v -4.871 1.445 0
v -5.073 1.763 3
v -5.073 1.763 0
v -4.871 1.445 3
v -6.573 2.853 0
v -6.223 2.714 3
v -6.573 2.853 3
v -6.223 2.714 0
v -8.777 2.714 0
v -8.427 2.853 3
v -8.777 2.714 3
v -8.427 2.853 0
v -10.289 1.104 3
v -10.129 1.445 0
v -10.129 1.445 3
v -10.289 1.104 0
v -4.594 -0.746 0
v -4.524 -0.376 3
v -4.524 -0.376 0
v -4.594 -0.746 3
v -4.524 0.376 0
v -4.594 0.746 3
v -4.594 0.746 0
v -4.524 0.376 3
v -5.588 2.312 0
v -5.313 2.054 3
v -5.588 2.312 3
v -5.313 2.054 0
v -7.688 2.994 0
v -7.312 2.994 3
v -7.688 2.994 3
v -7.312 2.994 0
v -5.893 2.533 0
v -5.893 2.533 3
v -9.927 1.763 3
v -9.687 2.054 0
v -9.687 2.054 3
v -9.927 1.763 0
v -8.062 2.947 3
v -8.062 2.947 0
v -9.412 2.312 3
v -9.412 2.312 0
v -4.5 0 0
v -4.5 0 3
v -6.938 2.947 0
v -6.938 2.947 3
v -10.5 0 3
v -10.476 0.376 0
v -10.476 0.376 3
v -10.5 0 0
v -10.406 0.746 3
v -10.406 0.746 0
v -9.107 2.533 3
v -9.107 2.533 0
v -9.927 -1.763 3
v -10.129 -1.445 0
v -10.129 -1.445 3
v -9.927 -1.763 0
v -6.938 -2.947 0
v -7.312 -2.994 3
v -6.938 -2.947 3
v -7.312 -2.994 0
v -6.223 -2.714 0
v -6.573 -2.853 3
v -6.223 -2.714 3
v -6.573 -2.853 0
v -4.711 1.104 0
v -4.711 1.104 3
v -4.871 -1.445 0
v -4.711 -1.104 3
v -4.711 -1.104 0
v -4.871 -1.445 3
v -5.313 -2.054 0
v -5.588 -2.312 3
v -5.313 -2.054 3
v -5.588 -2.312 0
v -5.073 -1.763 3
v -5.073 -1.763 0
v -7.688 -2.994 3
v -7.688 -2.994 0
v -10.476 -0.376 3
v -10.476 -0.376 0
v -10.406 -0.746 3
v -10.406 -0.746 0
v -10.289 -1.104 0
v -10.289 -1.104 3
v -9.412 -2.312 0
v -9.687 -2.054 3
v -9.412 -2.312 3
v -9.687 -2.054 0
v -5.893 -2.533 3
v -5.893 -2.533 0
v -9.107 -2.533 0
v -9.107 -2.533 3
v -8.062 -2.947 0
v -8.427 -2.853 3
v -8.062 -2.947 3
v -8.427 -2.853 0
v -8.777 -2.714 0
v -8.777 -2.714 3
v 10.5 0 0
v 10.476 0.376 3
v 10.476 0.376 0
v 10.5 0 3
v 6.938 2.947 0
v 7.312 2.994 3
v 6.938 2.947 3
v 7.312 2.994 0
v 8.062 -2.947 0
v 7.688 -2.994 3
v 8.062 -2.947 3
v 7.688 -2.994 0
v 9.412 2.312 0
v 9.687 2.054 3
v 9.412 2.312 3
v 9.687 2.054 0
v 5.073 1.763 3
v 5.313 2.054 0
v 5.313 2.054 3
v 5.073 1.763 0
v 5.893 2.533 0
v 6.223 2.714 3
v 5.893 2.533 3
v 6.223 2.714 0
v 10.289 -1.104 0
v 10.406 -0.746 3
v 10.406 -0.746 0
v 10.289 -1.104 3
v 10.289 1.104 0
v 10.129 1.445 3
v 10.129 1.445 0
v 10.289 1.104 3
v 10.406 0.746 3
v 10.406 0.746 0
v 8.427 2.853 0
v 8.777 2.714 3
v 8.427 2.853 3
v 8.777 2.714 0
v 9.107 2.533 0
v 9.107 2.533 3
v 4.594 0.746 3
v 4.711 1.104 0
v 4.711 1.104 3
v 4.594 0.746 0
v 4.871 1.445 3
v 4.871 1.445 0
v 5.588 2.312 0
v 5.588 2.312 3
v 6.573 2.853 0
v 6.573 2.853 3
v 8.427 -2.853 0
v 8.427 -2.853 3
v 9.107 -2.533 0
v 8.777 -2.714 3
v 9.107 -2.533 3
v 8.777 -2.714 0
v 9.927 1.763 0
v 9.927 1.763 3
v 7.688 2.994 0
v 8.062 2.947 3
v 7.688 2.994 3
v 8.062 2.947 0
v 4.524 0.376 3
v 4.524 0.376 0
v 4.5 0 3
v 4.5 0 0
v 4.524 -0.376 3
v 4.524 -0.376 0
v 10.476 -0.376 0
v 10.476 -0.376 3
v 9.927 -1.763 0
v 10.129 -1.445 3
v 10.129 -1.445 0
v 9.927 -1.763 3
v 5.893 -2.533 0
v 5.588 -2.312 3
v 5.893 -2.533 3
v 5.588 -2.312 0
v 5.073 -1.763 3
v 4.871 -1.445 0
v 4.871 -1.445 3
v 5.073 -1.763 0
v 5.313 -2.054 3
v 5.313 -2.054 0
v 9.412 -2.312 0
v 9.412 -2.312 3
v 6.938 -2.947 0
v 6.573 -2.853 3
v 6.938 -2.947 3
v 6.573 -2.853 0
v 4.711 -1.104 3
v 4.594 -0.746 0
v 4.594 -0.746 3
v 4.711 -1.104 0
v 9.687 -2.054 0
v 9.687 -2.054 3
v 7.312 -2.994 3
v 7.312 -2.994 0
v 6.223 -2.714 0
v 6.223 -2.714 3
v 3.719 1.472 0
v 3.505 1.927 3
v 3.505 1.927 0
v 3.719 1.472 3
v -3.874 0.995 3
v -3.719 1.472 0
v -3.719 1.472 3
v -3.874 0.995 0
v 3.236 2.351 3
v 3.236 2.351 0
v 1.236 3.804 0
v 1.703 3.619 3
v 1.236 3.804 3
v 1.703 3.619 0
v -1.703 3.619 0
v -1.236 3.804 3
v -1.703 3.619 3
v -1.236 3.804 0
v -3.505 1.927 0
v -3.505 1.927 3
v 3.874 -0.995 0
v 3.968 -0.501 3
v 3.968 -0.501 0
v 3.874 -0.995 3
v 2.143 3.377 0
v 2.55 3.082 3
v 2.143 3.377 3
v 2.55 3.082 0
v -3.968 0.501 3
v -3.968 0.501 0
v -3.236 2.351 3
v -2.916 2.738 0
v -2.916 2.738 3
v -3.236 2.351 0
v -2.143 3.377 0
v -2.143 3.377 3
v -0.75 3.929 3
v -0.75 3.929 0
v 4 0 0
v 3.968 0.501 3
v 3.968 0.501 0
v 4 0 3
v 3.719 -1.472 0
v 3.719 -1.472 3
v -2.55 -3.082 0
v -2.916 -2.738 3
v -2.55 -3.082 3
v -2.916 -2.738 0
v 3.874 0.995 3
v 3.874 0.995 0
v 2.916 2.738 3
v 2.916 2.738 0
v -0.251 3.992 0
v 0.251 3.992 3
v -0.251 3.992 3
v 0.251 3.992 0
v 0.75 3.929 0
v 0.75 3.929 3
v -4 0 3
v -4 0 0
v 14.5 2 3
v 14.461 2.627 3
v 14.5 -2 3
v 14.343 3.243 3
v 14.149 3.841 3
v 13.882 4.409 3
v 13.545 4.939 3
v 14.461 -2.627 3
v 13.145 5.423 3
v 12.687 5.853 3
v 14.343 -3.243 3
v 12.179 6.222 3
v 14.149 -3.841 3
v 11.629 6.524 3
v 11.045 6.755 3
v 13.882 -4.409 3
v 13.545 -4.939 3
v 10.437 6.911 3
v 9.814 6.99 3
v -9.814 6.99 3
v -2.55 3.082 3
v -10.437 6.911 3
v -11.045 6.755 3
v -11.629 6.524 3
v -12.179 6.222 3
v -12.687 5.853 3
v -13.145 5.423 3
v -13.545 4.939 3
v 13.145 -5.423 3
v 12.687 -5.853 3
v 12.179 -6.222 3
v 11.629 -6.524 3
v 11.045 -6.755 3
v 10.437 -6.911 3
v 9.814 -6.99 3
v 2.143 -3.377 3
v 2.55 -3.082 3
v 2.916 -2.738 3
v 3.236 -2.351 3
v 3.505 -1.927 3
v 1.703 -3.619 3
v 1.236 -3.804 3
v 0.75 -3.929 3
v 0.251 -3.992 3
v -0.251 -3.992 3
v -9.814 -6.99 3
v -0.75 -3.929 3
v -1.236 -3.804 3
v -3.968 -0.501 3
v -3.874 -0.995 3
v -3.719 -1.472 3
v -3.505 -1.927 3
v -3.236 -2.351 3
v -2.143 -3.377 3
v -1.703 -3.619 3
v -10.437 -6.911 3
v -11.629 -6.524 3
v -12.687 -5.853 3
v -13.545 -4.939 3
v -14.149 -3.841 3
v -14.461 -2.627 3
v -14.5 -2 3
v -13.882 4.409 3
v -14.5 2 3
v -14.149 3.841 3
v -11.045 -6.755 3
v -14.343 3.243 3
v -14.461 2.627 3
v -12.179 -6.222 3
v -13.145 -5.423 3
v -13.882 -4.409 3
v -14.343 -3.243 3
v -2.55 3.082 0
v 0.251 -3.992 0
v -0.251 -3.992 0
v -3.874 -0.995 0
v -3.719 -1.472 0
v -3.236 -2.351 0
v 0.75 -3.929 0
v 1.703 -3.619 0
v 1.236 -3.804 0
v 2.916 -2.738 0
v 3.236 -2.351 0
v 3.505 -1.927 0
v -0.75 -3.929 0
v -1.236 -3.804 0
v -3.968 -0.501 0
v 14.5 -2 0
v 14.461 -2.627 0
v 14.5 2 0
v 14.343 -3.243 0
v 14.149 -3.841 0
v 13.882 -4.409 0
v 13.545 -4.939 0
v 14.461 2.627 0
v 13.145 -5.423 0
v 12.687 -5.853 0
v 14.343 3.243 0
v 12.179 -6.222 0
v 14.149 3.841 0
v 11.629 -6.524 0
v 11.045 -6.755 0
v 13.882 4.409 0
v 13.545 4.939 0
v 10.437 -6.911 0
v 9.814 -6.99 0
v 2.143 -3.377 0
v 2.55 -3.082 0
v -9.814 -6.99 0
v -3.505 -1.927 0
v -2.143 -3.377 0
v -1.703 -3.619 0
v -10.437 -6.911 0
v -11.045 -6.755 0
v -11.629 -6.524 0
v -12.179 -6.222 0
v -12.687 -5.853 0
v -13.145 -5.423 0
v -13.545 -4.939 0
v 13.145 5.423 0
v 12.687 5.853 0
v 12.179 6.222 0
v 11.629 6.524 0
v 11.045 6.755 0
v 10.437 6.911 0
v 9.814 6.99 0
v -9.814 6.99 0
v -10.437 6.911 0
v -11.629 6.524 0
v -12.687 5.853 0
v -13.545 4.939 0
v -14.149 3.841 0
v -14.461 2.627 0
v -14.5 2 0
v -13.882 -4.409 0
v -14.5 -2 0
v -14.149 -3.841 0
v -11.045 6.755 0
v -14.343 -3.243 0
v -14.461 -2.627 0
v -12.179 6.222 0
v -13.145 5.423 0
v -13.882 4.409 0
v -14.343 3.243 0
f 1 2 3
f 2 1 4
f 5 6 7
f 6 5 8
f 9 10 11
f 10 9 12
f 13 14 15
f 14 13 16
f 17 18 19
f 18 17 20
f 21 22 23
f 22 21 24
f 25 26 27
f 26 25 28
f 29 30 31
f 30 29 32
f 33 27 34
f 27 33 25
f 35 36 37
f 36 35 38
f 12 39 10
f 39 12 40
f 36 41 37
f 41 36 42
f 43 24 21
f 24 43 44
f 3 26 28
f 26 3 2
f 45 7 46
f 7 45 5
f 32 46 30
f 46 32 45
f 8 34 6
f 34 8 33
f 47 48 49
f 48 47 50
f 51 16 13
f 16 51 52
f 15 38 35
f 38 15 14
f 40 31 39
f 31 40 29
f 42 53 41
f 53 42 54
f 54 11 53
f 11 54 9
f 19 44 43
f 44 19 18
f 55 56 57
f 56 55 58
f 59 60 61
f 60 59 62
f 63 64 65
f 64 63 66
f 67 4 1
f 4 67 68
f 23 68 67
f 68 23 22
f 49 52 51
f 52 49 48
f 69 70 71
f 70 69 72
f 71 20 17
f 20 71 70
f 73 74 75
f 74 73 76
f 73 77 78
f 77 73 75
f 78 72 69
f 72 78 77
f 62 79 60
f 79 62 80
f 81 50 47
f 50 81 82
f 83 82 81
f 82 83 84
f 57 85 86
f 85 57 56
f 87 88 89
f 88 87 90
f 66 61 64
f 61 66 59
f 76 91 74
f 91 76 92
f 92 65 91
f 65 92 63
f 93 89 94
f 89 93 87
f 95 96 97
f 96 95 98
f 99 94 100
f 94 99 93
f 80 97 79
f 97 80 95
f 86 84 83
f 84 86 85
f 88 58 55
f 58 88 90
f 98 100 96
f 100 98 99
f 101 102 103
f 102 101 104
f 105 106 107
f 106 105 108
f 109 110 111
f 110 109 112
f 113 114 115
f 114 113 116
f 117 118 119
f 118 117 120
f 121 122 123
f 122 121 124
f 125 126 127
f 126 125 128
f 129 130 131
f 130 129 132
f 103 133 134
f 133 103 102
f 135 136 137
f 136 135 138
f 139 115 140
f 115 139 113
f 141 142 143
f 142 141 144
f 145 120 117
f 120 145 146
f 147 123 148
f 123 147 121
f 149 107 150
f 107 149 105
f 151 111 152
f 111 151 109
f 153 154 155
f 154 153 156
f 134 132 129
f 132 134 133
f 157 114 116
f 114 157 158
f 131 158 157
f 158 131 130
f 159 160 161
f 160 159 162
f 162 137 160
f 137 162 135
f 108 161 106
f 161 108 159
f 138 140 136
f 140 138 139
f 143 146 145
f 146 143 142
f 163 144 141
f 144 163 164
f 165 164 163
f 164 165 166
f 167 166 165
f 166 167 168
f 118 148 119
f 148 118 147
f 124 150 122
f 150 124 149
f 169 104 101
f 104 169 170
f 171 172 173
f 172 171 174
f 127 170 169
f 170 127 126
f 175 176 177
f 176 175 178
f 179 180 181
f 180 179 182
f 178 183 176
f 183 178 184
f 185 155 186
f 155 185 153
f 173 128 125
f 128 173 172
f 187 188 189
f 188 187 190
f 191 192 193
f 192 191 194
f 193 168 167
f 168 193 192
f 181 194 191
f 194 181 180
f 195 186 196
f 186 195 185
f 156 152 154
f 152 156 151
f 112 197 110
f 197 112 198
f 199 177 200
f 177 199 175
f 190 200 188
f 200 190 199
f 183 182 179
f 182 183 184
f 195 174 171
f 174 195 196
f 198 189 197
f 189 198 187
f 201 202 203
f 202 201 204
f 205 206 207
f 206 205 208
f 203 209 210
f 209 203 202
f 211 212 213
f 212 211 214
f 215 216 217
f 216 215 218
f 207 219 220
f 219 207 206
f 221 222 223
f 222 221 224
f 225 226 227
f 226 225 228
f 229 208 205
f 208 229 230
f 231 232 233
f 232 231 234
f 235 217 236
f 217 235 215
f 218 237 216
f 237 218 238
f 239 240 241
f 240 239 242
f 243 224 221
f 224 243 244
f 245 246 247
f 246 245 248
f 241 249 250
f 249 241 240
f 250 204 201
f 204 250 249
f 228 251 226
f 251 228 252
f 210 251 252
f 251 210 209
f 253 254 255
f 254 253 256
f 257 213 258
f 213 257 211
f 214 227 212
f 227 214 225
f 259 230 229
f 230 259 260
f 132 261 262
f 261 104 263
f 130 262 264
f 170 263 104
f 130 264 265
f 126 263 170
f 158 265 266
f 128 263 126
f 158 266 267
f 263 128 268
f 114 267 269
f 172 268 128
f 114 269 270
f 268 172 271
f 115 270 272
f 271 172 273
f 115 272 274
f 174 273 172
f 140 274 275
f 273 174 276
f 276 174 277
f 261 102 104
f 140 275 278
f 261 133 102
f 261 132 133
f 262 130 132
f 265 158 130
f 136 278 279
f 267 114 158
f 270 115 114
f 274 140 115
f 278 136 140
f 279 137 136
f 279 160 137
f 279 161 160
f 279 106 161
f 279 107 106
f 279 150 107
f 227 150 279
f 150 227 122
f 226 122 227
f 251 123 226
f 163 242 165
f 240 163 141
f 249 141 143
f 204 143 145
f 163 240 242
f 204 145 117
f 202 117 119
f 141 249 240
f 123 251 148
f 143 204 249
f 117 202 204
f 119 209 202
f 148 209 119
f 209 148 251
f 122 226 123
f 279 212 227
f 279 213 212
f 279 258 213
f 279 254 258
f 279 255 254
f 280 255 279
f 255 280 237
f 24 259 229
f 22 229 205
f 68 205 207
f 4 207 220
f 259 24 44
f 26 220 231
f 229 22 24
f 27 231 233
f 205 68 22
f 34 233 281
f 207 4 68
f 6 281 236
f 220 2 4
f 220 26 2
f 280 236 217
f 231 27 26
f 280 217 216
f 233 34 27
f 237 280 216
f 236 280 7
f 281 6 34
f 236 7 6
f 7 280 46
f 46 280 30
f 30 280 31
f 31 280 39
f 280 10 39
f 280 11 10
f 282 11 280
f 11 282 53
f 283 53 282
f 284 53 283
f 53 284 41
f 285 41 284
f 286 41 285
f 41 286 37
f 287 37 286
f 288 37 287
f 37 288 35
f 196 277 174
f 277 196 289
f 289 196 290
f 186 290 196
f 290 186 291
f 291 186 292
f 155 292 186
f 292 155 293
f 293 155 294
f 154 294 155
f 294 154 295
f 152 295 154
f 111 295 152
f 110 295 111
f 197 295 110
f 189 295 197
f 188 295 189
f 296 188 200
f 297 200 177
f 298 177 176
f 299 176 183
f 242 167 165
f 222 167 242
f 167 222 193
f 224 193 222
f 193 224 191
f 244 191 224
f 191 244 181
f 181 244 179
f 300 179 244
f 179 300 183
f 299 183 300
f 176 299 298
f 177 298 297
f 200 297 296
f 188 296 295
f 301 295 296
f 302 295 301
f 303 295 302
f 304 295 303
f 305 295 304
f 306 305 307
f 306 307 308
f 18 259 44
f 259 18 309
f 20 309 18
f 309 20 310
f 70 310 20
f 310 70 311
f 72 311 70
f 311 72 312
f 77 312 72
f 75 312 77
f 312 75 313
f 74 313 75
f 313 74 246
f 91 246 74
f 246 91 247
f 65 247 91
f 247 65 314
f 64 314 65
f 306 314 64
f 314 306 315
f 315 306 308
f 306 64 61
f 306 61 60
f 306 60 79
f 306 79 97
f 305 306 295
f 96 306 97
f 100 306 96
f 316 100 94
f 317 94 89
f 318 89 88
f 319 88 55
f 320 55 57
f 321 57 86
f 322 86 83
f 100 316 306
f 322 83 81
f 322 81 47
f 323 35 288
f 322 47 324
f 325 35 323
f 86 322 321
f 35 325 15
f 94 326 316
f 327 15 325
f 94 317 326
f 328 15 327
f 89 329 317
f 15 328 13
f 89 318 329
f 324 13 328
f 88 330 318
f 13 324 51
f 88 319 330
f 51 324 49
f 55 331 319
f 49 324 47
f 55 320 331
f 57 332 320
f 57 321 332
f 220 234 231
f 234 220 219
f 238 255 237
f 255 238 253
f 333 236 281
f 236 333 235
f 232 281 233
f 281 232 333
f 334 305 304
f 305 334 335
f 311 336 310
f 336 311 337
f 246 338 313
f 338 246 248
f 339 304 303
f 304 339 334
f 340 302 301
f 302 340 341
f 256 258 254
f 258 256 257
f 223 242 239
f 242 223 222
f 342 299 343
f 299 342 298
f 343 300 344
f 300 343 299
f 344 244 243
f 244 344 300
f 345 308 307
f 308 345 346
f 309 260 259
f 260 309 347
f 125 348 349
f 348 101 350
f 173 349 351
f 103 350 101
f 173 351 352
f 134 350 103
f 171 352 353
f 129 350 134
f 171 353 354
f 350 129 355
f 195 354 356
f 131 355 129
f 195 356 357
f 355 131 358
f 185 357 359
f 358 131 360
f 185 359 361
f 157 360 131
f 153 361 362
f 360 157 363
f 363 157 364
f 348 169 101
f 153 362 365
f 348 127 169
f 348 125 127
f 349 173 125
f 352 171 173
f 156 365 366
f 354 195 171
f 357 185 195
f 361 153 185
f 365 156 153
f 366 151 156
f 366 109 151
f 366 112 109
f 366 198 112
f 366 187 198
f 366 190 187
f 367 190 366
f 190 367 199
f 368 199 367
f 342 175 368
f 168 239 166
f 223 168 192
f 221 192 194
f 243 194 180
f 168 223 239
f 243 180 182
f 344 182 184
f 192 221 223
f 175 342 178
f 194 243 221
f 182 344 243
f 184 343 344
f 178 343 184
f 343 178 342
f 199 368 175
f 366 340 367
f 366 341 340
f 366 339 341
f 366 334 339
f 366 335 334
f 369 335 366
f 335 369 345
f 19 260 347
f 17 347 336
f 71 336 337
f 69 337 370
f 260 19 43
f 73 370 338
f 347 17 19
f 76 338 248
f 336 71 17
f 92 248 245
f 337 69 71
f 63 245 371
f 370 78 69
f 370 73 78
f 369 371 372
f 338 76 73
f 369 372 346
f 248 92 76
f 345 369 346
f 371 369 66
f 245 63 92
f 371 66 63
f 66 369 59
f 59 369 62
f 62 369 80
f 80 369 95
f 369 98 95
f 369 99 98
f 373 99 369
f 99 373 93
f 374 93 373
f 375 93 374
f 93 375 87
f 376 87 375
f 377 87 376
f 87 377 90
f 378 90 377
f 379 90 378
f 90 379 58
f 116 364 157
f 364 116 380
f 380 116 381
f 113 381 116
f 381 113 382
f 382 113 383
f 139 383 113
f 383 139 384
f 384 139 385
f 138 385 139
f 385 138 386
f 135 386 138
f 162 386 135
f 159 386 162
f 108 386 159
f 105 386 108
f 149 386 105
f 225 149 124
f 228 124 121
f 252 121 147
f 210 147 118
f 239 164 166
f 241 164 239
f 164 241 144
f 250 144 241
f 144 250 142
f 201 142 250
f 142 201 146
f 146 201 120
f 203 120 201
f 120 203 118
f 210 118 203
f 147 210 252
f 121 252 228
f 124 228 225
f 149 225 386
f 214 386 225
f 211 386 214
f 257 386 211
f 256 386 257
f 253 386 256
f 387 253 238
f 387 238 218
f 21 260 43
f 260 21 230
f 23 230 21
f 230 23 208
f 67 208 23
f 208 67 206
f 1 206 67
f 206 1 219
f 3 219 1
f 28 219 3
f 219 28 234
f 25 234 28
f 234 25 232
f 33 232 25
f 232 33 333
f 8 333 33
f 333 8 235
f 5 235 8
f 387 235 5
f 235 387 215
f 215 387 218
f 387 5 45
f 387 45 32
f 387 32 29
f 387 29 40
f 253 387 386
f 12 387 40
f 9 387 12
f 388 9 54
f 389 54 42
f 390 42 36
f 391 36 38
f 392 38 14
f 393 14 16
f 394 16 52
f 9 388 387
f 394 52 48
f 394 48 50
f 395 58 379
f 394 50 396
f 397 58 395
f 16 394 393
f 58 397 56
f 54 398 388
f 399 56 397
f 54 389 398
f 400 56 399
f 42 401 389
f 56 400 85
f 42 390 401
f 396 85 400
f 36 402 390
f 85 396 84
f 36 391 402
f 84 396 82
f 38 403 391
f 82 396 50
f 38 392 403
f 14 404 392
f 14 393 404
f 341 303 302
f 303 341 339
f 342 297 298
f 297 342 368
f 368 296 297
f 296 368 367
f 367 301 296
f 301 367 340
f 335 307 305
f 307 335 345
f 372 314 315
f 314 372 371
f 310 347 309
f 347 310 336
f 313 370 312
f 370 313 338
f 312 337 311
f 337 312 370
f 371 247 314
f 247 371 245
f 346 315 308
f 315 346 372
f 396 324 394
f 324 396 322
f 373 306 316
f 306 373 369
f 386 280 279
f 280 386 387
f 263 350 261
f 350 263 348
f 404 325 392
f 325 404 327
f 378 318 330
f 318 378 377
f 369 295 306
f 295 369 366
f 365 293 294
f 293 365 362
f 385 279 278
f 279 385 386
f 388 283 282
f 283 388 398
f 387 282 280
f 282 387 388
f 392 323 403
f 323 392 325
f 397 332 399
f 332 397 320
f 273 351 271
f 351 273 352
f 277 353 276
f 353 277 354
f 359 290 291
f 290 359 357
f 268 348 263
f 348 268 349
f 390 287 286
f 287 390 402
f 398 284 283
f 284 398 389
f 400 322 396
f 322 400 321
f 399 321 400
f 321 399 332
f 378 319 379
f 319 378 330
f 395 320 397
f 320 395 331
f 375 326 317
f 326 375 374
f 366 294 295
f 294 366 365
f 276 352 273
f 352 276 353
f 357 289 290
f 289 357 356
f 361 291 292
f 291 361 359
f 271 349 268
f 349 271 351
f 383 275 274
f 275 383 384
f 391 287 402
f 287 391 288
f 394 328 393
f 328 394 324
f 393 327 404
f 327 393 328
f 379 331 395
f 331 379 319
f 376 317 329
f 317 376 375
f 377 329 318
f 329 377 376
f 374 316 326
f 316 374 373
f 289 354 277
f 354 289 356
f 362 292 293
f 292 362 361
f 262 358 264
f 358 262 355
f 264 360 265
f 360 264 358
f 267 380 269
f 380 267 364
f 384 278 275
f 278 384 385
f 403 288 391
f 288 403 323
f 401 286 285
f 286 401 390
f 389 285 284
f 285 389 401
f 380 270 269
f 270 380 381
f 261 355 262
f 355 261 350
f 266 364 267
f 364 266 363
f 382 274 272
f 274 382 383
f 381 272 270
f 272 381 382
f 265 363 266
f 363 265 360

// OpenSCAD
$fn = 50;


difference() {
	union() {
		hull() {
			translate(v = [-9.5000000000, 2.0000000000, 0]) {
				cylinder(h = 3, r = 5);
			}
			translate(v = [9.5000000000, 2.0000000000, 0]) {
				cylinder(h = 3, r = 5);
			}
			translate(v = [-9.5000000000, -2.0000000000, 0]) {
				cylinder(h = 3, r = 5);
			}
			translate(v = [9.5000000000, -2.0000000000, 0]) {
				cylinder(h = 3, r = 5);
			}
		}
	}
	union() {
		#translate(v = [-7.5000000000, 0.0000000000, -100.0000000000]) {
			cylinder(h = 200, r = 3.0000000000);
		}
		#translate(v = [-7.5000000000, 0.0000000000, -100.0000000000]) {
			cylinder(h = 200, r = 3.0000000000);
		}
		#translate(v = [7.5000000000, 0.0000000000, -100.0000000000]) {
			cylinder(h = 200, r = 3.0000000000);
		}
		#translate(v = [7.5000000000, 0.0000000000, -100.0000000000]) {
			cylinder(h = 200, r = 3.0000000000);
		}
		#cylinder(h = 3, r = 4.0000000000);
	}
}
